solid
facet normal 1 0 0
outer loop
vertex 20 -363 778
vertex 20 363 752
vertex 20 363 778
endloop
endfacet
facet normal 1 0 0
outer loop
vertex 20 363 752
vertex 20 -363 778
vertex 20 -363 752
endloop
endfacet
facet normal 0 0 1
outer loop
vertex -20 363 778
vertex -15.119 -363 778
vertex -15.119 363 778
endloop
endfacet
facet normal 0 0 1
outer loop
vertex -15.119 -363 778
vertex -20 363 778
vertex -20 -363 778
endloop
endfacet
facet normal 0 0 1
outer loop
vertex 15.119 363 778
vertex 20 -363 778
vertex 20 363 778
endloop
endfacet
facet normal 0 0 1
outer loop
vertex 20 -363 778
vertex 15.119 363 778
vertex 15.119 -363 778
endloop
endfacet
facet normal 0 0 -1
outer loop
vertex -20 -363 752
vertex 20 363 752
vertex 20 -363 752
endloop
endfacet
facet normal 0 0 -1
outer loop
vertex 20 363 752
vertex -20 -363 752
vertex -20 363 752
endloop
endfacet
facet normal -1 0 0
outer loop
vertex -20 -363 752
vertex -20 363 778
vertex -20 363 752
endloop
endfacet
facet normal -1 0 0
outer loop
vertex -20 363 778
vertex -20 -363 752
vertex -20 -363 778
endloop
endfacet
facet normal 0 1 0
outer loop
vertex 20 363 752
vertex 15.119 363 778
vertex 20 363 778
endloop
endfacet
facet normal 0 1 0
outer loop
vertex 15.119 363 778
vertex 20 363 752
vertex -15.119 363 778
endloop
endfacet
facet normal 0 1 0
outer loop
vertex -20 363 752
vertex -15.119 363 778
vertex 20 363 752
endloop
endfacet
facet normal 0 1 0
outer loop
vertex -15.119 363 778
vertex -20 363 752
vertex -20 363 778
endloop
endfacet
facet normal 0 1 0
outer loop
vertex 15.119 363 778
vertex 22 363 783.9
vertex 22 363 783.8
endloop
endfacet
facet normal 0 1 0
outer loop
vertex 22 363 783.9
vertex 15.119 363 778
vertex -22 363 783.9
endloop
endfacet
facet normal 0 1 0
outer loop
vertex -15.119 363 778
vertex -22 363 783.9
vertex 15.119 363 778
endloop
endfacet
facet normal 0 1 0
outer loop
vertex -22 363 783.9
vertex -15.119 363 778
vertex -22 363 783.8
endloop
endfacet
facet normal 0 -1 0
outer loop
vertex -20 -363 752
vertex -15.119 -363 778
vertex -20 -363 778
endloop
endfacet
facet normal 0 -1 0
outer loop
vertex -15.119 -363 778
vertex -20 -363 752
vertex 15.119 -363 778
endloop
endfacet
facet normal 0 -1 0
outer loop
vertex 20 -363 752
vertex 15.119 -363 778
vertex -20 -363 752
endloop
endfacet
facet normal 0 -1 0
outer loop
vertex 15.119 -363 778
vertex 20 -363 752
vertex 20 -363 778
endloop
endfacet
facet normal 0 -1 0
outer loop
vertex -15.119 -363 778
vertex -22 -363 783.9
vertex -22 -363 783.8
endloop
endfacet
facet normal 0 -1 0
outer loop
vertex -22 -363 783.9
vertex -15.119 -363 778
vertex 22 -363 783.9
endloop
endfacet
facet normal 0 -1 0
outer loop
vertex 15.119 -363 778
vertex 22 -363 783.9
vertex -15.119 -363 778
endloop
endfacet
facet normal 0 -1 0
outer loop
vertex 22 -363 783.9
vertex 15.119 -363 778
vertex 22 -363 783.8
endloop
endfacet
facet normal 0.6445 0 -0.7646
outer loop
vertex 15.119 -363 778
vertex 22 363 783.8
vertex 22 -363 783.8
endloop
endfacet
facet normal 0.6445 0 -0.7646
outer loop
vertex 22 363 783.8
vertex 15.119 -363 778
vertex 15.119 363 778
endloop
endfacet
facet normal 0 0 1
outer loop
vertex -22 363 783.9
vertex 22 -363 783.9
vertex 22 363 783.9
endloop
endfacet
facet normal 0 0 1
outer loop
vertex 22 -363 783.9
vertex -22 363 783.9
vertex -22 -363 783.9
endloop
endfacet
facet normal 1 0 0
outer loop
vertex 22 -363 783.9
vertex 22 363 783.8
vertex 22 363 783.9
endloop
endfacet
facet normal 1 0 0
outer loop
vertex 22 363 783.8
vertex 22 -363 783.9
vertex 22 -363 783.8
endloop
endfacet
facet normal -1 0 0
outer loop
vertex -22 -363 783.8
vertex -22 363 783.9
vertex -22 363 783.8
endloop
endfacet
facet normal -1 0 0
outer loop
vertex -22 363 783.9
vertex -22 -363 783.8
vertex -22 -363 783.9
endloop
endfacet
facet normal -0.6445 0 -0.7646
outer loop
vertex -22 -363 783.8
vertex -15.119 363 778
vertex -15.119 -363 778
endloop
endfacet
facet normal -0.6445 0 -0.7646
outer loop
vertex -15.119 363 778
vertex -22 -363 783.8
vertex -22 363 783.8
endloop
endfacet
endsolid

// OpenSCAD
// file: parts.scad
$fn=40;

// ---- 桌腿 ----

module leg(){
  difference(){
    union(){
      translate([390.000,390.000,0.000]) cube([60.000,60.000,750.000]);
      translate([400.000,400.000,750.000]) cube([40.000,40.000,20.000]);
    }
    // 牙板透榫槽（沿 +x，+y 侧牙板 A 端穿入）
    translate([389.000,426.800,699.800]) cube([62.000,14.400,40.400]);
    // 牙板闷榫槽（沿 +y，+x 侧牙板 B 端）
    translate([426.800,389.000,699.800]) cube([14.400,23.200,40.400]);
  }
}

// ---- 边框 ----

module rail(){
  difference(){
    union(){
      translate([0,0,750]) linear_extrude(height=50) polygon(points=[[-370,370],[370,370],[450.0,450.0],[-450.0,450.0]]);
      translate([420.607,399.393,779.0]) rotate([0,0,-45]) cube([34,40,10],center=true);
    }
    // 面板槽：全长开通至 45° 端面（角部两框的槽合起来成 L 形）
    translate([-450.000,370.000,785.800]) cube([900.000,14.000,6.400]);
    // 腿顶榫卯（两端各半，合起来 40x40x20）
    translate([399.800,399.800,750.000]) cube([40.400,40.400,20.400]);
    translate([-440.200,399.800,750.000]) cube([40.400,40.400,20.400]);
    // 格角暗榫卯
    translate([-398.545,421.455,779.0]) rotate([0,0,45]) cube([34.4,40.4,10.4],center=true);
    // 竹销孔：+x 端穿暗榫，-x 端穿本体
    translate([418,384,750]) cylinder(h=34,r=4.0,$fn=40);
    translate([-384,418,750]) cylinder(h=34,r=4.0,$fn=40);
  }
}

// ---- 牙板 ----

module apron(){
  difference(){
    union(){
      translate([-390.000,424.000,680.000]) cube([780.000,20.000,70.000]);
      // A 端：透榫（390..460）
      translate([390.000,427.000,700.000]) cube([70.000,14.000,40.000]);
      // B 端：闷榫（-412..-390）
      translate([-412.000,427.000,700.000]) cube([22.000,14.000,40.000]);
    }
    hull(){ translate([375.000,423.500,680.000]) cube([15.000,21.000,0.200]); translate([389.800,423.500,680.000]) cube([0.200,21.000,15.000]); }
    hull(){ translate([-390.000,423.500,680.000]) cube([15.000,21.000,0.200]); translate([-390.000,423.500,680.000]) cube([0.200,21.000,15.000]); }
    // 透榫楔槽（横槽，撑开榫头上下两片）
    translate([428.000,426.900,718.400]) cube([32.200,14.200,3.200]);
  }
}

// ---- 面板-边板 ----

module panel_outer(){
  difference(){
    union(){
      translate([-365.000,-365.000,778.000]) cube([730.000,244.000,22.000]);
      translate([0,0,786]) linear_extrude(height=6) polygon(points=[[-379,-121],[-379,-377],[-377,-379],[377,-379],[379,-377],[379,-121],[365,-121],[365,-365],[-365,-365],[-365,-121]]);
    }
    // 内侧龙凤榫槽（向板内 8 深：y -129..-121）
    translate([-365.000,-129.000,785.800]) cube([730.000,8.000,6.400]);
    // 穿带燕尾槽
    hull(){ translate([-259.200,-365.000,778.000]) cube([30.400,244.000,0.100]); translate([-266.200,-365.000,783.900]) cube([44.400,244.000,0.100]); }
    hull(){ translate([-15.200,-365.000,778.000]) cube([30.400,244.000,0.100]); translate([-22.200,-365.000,783.900]) cube([44.400,244.000,0.100]); }
    hull(){ translate([228.800,-365.000,778.000]) cube([30.400,244.000,0.100]); translate([221.800,-365.000,783.900]) cube([44.400,244.000,0.100]); }
  }
}

// ---- 面板-中板 ----

module panel_middle(){
  difference(){
    union(){
      translate([-365.000,-121.000,778.000]) cube([730.000,242.000,22.000]);
      translate([365.000,-121.000,786.000]) cube([14.000,242.000,6.000]);
      translate([-379.000,-121.000,786.000]) cube([14.000,242.000,6.000]);
    }
    // 两侧龙凤榫槽（各向板内 8 深）
    translate([-365.000,-121.000,785.800]) cube([730.000,8.000,6.400]);
    translate([-365.000,113.000,785.800]) cube([730.000,8.000,6.400]);
    hull(){ translate([-259.200,-121.000,778.000]) cube([30.400,242.000,0.100]); translate([-266.200,-121.000,783.900]) cube([44.400,242.000,0.100]); }
    hull(){ translate([-15.200,-121.000,778.000]) cube([30.400,242.000,0.100]); translate([-22.200,-121.000,783.900]) cube([44.400,242.000,0.100]); }
    hull(){ translate([228.800,-121.000,778.000]) cube([30.400,242.000,0.100]); translate([221.800,-121.000,783.900]) cube([44.400,242.000,0.100]); }
  }
}

// ---- 穿带 ----

module cleat(){
  union(){
    translate([-20.000,-363.000,752.000]) cube([40.000,726.000,26.000]);
    hull(){
      translate([-15.000,-363.000,777.900]) cube([30.000,726.000,0.050]);
      translate([-22.000,-363.000,783.800]) cube([44.000,726.000,0.100]);
    }
  }
}

// ---- 穿簧 ----
module spline(){ translate([-360.000,-7.800,786.100]) cube([720.000,15.600,5.800]); }
// ---- 木楔 ----
module wedge(){ hull(){ translate([435.000,427.400,719.400]) cube([1.000,13.200,1.200]); translate([467.000,427.400,718.500]) cube([1.000,13.200,3.000]); } }
// ---- 竹销 ----
module pin(){ translate([0,0,750]) cylinder(h=34,r=4.0,$fn=40); }
// main file
// 穿带（0° 基准件，位于整机坐标系中）
include <parts.scad>
cleat();
